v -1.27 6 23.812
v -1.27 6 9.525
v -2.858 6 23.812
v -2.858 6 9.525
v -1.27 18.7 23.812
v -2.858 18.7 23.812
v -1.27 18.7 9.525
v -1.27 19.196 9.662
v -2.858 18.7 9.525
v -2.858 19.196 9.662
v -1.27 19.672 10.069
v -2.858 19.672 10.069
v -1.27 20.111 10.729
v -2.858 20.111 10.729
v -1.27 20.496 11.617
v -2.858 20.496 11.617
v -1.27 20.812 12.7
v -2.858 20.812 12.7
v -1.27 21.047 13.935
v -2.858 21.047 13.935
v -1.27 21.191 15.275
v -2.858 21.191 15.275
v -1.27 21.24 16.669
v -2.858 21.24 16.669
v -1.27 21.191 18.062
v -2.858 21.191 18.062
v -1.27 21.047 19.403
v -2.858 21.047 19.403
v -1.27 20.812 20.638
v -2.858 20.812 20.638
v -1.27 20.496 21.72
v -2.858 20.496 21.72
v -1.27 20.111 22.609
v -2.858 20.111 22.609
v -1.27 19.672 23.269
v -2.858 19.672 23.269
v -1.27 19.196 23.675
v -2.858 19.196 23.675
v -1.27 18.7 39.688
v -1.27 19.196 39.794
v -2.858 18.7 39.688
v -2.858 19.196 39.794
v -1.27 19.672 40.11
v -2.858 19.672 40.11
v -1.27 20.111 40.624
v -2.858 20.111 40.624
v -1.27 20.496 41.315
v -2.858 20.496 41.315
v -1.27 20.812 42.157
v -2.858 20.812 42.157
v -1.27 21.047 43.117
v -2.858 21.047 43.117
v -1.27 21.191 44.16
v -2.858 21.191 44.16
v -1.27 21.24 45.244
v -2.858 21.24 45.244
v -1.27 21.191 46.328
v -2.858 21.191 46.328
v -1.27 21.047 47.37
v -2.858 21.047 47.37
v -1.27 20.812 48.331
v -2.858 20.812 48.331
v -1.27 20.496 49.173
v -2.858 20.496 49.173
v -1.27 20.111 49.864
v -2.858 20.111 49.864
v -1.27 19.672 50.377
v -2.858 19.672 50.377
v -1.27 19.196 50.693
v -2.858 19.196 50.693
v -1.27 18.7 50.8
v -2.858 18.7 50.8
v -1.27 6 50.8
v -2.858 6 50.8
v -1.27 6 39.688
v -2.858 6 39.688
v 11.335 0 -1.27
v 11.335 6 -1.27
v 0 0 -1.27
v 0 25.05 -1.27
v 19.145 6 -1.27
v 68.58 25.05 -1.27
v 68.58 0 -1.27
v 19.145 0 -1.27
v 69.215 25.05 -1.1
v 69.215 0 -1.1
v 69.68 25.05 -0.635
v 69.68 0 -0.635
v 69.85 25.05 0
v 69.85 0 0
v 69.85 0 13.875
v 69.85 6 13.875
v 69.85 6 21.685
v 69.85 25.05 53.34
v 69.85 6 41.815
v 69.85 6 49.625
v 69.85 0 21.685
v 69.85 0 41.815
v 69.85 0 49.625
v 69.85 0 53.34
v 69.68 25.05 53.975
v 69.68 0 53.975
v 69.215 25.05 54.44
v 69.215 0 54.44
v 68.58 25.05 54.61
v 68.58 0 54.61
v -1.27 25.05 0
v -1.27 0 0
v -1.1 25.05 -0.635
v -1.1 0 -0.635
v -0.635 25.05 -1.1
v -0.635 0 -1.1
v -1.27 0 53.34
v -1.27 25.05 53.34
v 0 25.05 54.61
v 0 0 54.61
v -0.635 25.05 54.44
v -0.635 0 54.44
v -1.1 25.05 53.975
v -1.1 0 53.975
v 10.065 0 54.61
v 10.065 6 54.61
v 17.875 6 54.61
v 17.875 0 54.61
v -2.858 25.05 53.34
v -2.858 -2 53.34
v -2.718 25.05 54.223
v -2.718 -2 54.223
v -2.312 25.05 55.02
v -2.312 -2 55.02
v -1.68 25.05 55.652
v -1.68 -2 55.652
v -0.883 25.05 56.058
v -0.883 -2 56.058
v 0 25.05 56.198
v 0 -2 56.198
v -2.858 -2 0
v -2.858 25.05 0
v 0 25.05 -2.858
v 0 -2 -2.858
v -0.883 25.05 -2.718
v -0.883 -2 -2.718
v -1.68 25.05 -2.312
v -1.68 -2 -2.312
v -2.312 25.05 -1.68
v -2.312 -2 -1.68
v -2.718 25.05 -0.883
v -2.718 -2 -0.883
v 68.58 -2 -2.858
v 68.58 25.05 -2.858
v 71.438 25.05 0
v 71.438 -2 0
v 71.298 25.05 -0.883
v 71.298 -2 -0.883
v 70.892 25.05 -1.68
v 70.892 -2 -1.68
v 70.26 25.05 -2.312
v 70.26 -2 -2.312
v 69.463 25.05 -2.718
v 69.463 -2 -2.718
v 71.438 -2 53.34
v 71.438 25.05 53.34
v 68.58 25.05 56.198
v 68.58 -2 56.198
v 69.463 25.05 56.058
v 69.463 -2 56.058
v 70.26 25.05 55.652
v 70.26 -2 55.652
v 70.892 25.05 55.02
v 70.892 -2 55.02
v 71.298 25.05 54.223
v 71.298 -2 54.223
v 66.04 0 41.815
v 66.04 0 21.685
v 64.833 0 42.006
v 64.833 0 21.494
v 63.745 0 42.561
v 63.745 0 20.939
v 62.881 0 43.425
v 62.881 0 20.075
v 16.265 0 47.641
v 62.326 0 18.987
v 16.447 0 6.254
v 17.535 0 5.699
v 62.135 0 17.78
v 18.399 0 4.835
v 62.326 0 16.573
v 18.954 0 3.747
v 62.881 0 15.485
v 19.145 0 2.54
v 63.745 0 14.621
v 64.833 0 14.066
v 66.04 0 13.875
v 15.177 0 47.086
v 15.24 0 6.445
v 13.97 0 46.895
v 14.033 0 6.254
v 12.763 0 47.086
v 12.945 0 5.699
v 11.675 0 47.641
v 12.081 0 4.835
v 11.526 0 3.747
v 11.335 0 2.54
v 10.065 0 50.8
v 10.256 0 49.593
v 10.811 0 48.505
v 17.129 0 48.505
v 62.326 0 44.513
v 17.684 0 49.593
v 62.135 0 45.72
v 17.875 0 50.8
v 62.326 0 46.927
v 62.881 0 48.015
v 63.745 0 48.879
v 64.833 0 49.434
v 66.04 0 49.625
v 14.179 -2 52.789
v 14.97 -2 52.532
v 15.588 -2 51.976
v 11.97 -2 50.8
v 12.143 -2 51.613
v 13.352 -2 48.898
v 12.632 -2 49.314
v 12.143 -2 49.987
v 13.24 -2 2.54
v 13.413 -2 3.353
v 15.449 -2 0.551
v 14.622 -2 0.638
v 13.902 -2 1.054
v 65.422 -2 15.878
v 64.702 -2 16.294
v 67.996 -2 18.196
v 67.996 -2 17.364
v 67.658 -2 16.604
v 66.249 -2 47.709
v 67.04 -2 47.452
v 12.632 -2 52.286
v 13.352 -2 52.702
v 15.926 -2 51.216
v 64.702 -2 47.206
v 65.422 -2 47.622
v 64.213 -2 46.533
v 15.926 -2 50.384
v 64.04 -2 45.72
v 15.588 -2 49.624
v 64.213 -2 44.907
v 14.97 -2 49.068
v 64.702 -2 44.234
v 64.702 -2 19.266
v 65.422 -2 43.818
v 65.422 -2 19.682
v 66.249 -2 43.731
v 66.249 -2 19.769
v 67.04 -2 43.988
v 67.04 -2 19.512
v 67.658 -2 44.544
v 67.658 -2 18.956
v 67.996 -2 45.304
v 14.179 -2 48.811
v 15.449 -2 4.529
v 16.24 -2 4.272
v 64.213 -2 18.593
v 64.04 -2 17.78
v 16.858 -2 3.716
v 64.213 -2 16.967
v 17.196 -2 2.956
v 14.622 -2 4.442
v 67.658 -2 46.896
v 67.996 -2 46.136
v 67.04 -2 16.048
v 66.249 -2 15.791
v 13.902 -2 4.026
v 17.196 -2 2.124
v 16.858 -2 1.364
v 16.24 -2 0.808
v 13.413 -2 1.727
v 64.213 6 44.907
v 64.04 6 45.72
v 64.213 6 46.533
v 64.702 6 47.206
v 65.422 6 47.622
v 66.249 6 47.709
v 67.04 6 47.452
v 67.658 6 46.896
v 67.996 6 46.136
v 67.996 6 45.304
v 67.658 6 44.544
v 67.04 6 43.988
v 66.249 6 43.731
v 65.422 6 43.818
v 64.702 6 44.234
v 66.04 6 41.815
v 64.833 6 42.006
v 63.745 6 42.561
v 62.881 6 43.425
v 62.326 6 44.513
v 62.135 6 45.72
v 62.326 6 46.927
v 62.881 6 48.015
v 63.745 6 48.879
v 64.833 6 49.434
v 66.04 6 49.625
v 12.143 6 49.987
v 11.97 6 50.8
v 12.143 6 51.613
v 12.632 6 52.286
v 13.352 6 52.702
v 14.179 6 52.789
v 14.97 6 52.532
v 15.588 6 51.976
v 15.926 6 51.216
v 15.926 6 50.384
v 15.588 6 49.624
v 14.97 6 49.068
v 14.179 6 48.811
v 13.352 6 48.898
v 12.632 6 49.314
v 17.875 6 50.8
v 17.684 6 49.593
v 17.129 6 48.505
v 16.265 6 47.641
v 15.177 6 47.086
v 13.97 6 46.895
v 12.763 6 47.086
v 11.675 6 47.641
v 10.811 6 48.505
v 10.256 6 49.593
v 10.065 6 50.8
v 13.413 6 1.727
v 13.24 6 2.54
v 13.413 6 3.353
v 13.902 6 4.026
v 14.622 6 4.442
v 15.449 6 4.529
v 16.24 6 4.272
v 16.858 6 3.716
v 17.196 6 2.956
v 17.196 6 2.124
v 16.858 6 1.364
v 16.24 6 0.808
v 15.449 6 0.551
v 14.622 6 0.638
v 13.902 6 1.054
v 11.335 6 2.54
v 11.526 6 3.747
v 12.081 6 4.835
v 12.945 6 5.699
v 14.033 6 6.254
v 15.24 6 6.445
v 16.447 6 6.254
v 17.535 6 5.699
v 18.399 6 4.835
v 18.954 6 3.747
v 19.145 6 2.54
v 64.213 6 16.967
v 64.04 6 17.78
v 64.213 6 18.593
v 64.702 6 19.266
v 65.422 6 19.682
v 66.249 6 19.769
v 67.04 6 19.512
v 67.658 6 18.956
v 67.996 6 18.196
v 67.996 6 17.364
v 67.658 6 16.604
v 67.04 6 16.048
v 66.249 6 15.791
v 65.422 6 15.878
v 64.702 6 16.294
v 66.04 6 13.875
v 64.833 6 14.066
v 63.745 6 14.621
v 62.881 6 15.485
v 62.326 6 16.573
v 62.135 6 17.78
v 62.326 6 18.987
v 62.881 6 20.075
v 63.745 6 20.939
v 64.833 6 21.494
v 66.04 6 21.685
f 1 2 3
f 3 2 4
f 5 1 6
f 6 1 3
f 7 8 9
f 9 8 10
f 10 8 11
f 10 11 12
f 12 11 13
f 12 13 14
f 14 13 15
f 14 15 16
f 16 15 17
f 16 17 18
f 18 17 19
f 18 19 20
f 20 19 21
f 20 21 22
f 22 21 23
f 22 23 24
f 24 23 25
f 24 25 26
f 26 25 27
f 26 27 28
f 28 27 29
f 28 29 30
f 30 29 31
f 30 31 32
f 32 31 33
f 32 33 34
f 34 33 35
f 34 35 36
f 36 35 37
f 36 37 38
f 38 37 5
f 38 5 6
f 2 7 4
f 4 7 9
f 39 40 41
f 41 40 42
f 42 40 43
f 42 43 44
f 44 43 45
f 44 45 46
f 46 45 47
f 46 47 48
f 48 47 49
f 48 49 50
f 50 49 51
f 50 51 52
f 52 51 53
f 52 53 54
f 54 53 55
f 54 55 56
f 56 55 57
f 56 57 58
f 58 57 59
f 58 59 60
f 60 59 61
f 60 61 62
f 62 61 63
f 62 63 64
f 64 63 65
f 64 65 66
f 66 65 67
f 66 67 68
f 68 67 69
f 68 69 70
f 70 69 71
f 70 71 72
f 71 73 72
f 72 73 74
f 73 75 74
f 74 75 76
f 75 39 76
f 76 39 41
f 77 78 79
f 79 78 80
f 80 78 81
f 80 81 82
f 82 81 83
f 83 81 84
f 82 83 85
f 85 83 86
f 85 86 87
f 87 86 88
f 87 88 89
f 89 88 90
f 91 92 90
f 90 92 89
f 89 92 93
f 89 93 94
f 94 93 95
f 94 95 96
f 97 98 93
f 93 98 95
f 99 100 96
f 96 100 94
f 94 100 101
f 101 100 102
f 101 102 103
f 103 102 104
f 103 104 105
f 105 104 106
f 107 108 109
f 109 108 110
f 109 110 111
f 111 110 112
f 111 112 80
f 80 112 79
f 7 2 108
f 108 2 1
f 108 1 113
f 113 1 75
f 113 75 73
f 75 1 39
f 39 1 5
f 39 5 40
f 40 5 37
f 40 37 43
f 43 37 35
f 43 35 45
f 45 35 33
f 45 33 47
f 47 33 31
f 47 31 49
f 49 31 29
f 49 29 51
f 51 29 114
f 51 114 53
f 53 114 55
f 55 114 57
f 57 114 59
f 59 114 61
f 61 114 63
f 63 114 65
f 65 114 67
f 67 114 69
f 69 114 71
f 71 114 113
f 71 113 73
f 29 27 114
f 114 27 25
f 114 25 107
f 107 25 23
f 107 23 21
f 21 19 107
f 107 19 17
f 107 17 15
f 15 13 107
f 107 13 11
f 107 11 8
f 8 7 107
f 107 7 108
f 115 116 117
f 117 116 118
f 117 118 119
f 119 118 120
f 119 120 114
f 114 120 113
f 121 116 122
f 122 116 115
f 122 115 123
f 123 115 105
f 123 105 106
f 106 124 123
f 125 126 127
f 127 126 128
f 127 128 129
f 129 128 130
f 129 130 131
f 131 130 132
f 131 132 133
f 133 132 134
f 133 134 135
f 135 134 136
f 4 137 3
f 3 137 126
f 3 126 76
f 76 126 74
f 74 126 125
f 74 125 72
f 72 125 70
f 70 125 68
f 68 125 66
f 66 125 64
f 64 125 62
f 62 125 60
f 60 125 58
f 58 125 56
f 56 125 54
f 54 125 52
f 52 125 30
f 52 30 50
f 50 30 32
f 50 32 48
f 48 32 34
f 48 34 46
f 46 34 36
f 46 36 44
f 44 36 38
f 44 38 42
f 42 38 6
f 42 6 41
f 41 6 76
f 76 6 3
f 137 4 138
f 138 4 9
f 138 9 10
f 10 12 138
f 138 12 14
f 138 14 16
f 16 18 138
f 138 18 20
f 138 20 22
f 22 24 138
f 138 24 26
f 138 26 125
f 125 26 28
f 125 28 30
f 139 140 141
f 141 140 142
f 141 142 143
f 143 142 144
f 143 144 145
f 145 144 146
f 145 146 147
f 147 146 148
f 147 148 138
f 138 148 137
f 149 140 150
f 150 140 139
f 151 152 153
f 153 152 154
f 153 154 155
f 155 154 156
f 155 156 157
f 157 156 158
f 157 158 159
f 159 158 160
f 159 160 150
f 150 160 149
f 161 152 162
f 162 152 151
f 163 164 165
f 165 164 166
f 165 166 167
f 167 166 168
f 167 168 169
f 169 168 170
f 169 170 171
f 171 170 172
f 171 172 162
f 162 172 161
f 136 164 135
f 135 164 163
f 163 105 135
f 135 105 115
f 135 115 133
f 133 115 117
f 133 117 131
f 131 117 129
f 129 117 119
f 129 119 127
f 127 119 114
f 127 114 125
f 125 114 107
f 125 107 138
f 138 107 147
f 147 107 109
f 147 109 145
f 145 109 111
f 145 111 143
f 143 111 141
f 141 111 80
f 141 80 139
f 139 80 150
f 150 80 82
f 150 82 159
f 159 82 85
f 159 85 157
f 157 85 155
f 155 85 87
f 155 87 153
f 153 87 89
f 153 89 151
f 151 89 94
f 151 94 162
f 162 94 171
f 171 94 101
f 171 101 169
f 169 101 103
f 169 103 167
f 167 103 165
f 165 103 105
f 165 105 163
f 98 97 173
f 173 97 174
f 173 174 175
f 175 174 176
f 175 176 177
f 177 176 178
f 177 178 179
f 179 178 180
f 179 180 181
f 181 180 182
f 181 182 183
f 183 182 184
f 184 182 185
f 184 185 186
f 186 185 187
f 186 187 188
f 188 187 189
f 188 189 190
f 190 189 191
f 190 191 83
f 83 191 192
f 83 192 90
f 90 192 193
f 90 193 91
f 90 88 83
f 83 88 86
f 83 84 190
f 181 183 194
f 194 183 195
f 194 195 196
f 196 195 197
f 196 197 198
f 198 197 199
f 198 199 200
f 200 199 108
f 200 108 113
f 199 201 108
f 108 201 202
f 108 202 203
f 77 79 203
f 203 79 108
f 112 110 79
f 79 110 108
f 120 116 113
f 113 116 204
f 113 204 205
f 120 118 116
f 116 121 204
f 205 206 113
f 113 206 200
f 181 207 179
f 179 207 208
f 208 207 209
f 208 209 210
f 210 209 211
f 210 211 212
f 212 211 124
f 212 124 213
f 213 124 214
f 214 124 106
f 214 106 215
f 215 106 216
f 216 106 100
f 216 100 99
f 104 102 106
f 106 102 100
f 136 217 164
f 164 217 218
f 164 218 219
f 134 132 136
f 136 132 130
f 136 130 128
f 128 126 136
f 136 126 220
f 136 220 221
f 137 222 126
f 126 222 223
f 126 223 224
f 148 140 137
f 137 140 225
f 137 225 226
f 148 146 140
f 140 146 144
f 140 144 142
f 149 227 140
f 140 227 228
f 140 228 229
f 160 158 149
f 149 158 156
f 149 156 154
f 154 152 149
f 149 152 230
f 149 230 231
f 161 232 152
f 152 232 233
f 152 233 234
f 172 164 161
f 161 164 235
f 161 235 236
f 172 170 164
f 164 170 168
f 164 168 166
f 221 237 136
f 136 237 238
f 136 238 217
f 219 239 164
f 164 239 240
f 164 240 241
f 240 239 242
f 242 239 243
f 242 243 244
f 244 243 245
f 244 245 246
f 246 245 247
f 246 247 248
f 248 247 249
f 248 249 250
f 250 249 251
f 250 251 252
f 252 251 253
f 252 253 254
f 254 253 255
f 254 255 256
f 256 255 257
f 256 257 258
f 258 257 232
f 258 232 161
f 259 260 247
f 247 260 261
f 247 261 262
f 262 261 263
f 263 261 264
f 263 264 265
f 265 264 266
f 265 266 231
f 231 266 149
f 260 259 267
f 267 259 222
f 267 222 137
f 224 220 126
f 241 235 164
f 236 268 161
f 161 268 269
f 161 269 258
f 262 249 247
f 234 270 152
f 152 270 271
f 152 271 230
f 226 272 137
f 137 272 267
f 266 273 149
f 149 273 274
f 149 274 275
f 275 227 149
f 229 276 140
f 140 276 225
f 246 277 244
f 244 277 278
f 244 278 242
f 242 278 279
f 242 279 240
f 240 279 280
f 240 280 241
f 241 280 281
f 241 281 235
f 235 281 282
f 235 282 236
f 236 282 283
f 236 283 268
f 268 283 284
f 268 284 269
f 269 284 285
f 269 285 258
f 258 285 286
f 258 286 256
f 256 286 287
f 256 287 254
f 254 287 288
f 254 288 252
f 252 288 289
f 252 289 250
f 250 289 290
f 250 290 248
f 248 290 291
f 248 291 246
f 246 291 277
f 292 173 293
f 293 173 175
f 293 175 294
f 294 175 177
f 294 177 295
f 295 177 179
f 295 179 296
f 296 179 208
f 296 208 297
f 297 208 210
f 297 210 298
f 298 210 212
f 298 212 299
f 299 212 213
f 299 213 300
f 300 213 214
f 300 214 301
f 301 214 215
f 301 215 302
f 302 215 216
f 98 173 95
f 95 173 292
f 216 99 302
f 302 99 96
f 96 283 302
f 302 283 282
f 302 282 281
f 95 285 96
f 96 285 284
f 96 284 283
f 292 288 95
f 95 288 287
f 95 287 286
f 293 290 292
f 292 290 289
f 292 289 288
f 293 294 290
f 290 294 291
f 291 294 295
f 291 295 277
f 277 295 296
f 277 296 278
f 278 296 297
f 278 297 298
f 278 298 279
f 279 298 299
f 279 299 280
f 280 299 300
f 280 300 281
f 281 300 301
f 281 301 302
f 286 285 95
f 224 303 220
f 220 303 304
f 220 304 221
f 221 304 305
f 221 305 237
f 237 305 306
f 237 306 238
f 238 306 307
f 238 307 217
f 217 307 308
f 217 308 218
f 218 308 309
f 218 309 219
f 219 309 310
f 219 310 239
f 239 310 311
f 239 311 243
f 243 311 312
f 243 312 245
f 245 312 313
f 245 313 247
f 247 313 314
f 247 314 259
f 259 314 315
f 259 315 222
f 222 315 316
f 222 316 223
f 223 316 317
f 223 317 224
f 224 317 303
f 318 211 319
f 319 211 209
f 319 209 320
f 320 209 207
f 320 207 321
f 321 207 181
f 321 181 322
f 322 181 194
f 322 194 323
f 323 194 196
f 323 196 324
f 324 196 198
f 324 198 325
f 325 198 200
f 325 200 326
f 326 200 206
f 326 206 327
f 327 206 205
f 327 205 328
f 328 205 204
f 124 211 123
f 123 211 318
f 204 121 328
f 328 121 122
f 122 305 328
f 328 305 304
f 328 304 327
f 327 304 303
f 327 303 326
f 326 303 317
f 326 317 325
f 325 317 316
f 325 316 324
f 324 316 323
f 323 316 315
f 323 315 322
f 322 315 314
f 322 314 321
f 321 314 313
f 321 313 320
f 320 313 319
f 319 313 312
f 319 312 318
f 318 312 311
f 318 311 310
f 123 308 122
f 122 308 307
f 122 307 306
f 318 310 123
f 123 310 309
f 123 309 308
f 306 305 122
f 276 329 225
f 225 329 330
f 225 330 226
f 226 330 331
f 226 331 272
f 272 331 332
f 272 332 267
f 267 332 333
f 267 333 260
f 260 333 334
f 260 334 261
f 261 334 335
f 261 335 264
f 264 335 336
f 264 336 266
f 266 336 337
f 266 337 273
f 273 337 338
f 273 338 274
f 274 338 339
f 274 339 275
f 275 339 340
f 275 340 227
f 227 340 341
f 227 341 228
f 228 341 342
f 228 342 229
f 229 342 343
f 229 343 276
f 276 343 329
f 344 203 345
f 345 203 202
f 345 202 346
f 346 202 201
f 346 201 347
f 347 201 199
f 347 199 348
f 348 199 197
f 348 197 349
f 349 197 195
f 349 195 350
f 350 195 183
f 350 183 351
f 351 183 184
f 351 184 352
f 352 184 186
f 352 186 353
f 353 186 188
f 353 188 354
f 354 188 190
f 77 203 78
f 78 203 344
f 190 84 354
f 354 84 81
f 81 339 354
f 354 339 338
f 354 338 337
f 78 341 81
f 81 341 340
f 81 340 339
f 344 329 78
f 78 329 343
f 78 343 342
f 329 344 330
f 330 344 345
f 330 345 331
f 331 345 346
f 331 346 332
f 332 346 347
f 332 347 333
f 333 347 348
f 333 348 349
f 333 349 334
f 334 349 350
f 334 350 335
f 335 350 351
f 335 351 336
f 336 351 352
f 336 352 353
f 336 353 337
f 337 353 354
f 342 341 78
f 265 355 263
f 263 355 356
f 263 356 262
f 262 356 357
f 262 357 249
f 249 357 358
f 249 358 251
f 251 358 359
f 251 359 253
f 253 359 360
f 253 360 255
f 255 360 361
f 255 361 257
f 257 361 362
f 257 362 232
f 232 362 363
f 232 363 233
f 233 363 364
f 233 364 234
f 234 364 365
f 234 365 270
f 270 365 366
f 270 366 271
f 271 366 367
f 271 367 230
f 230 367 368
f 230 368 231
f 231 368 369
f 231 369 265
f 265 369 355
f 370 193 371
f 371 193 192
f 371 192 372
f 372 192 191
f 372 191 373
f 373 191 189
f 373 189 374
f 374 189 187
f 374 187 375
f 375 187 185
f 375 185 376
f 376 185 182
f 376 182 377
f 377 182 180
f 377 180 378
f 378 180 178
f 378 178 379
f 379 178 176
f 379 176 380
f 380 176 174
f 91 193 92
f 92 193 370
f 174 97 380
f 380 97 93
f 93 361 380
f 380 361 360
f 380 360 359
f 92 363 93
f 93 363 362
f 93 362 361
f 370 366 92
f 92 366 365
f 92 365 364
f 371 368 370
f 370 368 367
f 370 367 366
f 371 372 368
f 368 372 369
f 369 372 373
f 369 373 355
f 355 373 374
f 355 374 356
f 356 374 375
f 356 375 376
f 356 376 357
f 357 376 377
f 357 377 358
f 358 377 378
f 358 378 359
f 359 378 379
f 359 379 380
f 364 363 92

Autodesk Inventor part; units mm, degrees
ref_plane "YZ Plane" through (0, 0, 0) normal (1, 0, 0) x (0, 1, 0)
ref_plane "XZ Plane" through (0, 0, 0) normal (0, 1, 0) x (-1, 0, 0)
ref_plane "XY Plane" through (0, 0, 0) normal (0, 0, 1) x (1, 0, 0)
sketch "Sketch1" plane through (0, 0, 0) normal (0, 1, 0) x (-1, 0, 0)
  circle A0 centre (-15.24, 2.54) radius 2
  circle A1 centre (-66.04, 17.78) radius 2
  circle A2 centre (-66.04, 45.72) radius 2
  line L0 (0, 0) -> (-68.58, 0) construction
  line L1 (-68.58, 0) -> (-68.58, 53.34) construction
  line L2 (-68.58, 53.34) -> (0, 53.34) construction
  line L3 (0, 53.34) -> (0, 0) construction
  line L4 (-68.58, -1.27) -> (0, -1.27)
  line L5 (1.27, 0) -> (1.27, 53.34)
  line L6 (0, 54.61) -> (-68.58, 54.61)
  line L7 (-69.85, 53.34) -> (-69.85, 0)
  arc A3 (0, -1.27) -> (1.27, 0) centre (0, 0) ccw
  arc A4 (-69.85, 0) -> (-68.58, -1.27) centre (-68.58, 0) ccw
  arc A5 (-68.58, 54.61) -> (-69.85, 53.34) centre (-68.58, 53.34) ccw
  arc A6 (1.27, 53.34) -> (0, 54.61) centre (0, 53.34) ccw
  arc A7 (-11.335, 2.54) -> (-19.145, 2.54) centre (-15.24, 2.54) ccw
  arc A8 (-66.04, 41.815) -> (-66.04, 49.625) centre (-66.04, 45.72) ccw
  arc A9 (-66.04, 13.875) -> (-66.04, 21.685) centre (-66.04, 17.78) ccw
  line L8 (-11.335, 2.54) -> (-19.145, 2.54) construction
  line L9 (-19.145, 2.54) -> (-19.145, -1.27)
  line L10 (-19.145, -1.27) -> (-11.335, -1.27)
  line L11 (-11.335, -1.27) -> (-11.335, 2.54)
  line L12 (-66.04, 13.875) -> (-69.85, 13.875)
  line L13 (-69.85, 13.875) -> (-69.85, 21.685)
  line L14 (-69.85, 21.685) -> (-66.04, 21.685)
  line L15 (-66.04, 21.685) -> (-66.04, 13.875) construction
  line L16 (-66.04, 41.815) -> (-69.85, 41.815)
  line L17 (-69.85, 41.815) -> (-69.85, 49.625)
  line L18 (-69.85, 49.625) -> (-66.04, 49.625)
  line L19 (-66.04, 49.625) -> (-66.04, 41.815) construction
  line L20 (-11.335, 54.61) -> (-19.145, 54.61)
  circle A10 centre (-13.97, 50.8) radius 2
  circle A11 centre (-13.97, 50.8) radius 3.905 construction
  arc A12 (-17.875, 50.8) -> (-10.065, 50.8) centre (-13.97, 50.8) ccw
  line L21 (-17.875, 50.8) -> (-17.875, 54.61)
  line L22 (-10.065, 50.8) -> (-10.065, 54.61)
  point P0 (-15.24, 2.54)
  dimension "d0" = 4
  dimension "d4" = 15.24
  dimension "d5" = 2.54
  dimension "d6" = 17.78
  dimension "d7" = 66.04
  dimension "d8" = 45.72
  dimension "d10" = 2.54
  dimension "d12" = 1.27
  dimension "d13" = 1.27
  dimension "d14" = 1.905
  dimension "d51" = 53.34
  dimension "d52" = 50.8
  dimension "d54" = 1.27
extrude "Extrusion1" add sketch "Sketch1" along normal blind 6 contours L9 A7 L11 L4 | L7 L14 A9 L12 | L7 L18 A8 L16 | L22 A12 L21 L6
extrude "Extrusion2" add sketch "Sketch1" against normal blind 2
sketch "Sketch2" plane through (0, -2, 0) normal (0, -1, 0) x (1, 0, 0)
  line L0 (68.58, 54.61) -> (0, 54.61) projected
  arc A0 (0, 54.61) -> (-1.27, 53.34) centre (0, 53.34) ccw projected
  line L1 (-1.27, 53.34) -> (-1.27, 0) projected
  arc A1 (-1.27, 0) -> (0, -1.27) centre (0, 0) ccw projected
  line L2 (0, -1.27) -> (68.58, -1.27) projected
  arc A2 (68.58, -1.27) -> (69.85, 0) centre (68.58, 0) ccw projected
  line L3 (69.85, 0) -> (69.85, 53.34) projected
  arc A3 (69.85, 53.34) -> (68.58, 54.61) centre (68.58, 53.34) ccw projected
  line L4 (68.58, -2.8575) -> (0, -2.8575)
  arc A4 (-2.8575, 0) -> (0, -2.8575) centre (0, 0) ccw
  line L5 (-2.8575, 0) -> (-2.8575, 53.34)
  arc A5 (0, 56.1975) -> (-2.8575, 53.34) centre (0, 53.34) ccw
  line L6 (0, 56.1975) -> (68.58, 56.1975)
  arc A6 (71.4375, 53.34) -> (68.58, 56.1975) centre (68.58, 53.34) ccw
  line L7 (71.4375, 53.34) -> (71.4375, 0)
  arc A7 (68.58, -2.8575) -> (71.4375, 0) centre (68.58, 0) ccw
  point P0 (0, 0)
  dimension "d19" = 1.5875
extrude "Extrusion3" add sketch "Sketch2" against normal blind 27.05
sketch "Sketch4" plane through (-2.8575, -2, 0) normal (-1, 0, 0) x (0, 0, 1)
  line L0 (0, 2) -> (53.34, 2) projected
  line L1 (0, 27.05) -> (53.34, 27.05) projected
  line L2 (50.8, 20.7) -> (39.6875, 20.7) construction
  line L3 (39.6875, 20.7) -> (39.6875, 8)
  ellipse E0 centre (45.2438, 20.7) end of major axis (50.8, 20.7) minor radius 2.54 (50.8, 20.7) -> (39.6875, 20.7) ccw
  ellipse E1 centre (45.2438, 20.7) end of major axis (50.8, 20.7) minor radius 2.54 (39.6875, 20.7) -> (50.8, 20.7) ccw construction
  line L4 (9.525, 8) -> (9.525, 20.7)
  line L5 (23.8125, 8) -> (23.8125, 20.7)
  ellipse E2 centre (16.6688, 20.7) end of major axis (23.8125, 20.7) minor radius 2.54 (23.8125, 20.7) -> (9.525, 20.7) ccw
  line L6 (9.525, 8) -> (23.8125, 8)
  line L7 (50.8, 20.7) -> (50.8, 8)
  line L8 (50.8, 8) -> (39.6875, 8)
  line L9 (50.8, 8) -> (54.61, 8) projected
  line L10 (54.61, 8) -> (50.8, 8) projected
  line L11 (50.8, 8) -> (50.8, 8) projected
  line L12 (48.8, 8) -> (52.8, 8) projected
  line L13 (2.54, 8) -> (-1.27, 8) projected
  line L14 (-1.27, 8) -> (2.54, 8) projected
  line L15 (2.54, 8) -> (2.54, 8) projected
  line L16 (0.54, 8) -> (4.54, 8) projected
  line L17 (53.34, 0) -> (53.34, 27.05) projected
  point P0 (2.54, 2)
  point P1 (2.54, 2)
  point P2 (2.54, 2)
  point P3 (2.54, 2)
  dimension "d26" = 2.54
  dimension "d29" = 2.54
  dimension "d25" = 11.1125
  dimension "d27" = 9.525
  dimension "d28" = 14.2875
  dimension "d56" = 2.54
  dimension "d57" = 12.7
extrude "Extrusion5" cut sketch "Sketch4" against normal up to surface (1.5875 mm away)
sketch "Sketch6" plane through (0, 0, 0) normal (0, 1, 0) x (1, 0, 0)
  line L0 (28.6568, -13.7506) -> (43.0772, -34.6602)
  point P0 (0, 0)
  dimension "d50" = 25.4
sketch "Sketch7" plane through (-2.8575, -2, 0) normal (-1, 0, 0) x (0, 0, 1)
  line L0 (0, 0) -> (0, 27.05) projected
  line L1 (0, 0) -> (-8.89, 0)
  line L2 (-8.89, 0) -> (-21.1351, -14.5931)
  line L3 (-21.1351, -14.5931) -> (-21.1351, -17.1331)
  line L4 (-21.1351, -17.1331) -> (11.9427, -44.8887)
  line L5 (53.34, 0) -> (0, 0) construction
  line L6 (26.67, 0) -> (26.67, -45.2204) construction
  line L7 (-8.89, 0) -> (25.1607, -28.5719) construction
  point P0 (0, 2)
  dimension "d58" = 8.89
  dimension "d59" = 19.05
  dimension "d60" = 130
  dimension "d61" = 2.54
  dimension "d62" = 43.18
  dimension "d63" = 130
properties part number "ArduinoHolder-v2"
